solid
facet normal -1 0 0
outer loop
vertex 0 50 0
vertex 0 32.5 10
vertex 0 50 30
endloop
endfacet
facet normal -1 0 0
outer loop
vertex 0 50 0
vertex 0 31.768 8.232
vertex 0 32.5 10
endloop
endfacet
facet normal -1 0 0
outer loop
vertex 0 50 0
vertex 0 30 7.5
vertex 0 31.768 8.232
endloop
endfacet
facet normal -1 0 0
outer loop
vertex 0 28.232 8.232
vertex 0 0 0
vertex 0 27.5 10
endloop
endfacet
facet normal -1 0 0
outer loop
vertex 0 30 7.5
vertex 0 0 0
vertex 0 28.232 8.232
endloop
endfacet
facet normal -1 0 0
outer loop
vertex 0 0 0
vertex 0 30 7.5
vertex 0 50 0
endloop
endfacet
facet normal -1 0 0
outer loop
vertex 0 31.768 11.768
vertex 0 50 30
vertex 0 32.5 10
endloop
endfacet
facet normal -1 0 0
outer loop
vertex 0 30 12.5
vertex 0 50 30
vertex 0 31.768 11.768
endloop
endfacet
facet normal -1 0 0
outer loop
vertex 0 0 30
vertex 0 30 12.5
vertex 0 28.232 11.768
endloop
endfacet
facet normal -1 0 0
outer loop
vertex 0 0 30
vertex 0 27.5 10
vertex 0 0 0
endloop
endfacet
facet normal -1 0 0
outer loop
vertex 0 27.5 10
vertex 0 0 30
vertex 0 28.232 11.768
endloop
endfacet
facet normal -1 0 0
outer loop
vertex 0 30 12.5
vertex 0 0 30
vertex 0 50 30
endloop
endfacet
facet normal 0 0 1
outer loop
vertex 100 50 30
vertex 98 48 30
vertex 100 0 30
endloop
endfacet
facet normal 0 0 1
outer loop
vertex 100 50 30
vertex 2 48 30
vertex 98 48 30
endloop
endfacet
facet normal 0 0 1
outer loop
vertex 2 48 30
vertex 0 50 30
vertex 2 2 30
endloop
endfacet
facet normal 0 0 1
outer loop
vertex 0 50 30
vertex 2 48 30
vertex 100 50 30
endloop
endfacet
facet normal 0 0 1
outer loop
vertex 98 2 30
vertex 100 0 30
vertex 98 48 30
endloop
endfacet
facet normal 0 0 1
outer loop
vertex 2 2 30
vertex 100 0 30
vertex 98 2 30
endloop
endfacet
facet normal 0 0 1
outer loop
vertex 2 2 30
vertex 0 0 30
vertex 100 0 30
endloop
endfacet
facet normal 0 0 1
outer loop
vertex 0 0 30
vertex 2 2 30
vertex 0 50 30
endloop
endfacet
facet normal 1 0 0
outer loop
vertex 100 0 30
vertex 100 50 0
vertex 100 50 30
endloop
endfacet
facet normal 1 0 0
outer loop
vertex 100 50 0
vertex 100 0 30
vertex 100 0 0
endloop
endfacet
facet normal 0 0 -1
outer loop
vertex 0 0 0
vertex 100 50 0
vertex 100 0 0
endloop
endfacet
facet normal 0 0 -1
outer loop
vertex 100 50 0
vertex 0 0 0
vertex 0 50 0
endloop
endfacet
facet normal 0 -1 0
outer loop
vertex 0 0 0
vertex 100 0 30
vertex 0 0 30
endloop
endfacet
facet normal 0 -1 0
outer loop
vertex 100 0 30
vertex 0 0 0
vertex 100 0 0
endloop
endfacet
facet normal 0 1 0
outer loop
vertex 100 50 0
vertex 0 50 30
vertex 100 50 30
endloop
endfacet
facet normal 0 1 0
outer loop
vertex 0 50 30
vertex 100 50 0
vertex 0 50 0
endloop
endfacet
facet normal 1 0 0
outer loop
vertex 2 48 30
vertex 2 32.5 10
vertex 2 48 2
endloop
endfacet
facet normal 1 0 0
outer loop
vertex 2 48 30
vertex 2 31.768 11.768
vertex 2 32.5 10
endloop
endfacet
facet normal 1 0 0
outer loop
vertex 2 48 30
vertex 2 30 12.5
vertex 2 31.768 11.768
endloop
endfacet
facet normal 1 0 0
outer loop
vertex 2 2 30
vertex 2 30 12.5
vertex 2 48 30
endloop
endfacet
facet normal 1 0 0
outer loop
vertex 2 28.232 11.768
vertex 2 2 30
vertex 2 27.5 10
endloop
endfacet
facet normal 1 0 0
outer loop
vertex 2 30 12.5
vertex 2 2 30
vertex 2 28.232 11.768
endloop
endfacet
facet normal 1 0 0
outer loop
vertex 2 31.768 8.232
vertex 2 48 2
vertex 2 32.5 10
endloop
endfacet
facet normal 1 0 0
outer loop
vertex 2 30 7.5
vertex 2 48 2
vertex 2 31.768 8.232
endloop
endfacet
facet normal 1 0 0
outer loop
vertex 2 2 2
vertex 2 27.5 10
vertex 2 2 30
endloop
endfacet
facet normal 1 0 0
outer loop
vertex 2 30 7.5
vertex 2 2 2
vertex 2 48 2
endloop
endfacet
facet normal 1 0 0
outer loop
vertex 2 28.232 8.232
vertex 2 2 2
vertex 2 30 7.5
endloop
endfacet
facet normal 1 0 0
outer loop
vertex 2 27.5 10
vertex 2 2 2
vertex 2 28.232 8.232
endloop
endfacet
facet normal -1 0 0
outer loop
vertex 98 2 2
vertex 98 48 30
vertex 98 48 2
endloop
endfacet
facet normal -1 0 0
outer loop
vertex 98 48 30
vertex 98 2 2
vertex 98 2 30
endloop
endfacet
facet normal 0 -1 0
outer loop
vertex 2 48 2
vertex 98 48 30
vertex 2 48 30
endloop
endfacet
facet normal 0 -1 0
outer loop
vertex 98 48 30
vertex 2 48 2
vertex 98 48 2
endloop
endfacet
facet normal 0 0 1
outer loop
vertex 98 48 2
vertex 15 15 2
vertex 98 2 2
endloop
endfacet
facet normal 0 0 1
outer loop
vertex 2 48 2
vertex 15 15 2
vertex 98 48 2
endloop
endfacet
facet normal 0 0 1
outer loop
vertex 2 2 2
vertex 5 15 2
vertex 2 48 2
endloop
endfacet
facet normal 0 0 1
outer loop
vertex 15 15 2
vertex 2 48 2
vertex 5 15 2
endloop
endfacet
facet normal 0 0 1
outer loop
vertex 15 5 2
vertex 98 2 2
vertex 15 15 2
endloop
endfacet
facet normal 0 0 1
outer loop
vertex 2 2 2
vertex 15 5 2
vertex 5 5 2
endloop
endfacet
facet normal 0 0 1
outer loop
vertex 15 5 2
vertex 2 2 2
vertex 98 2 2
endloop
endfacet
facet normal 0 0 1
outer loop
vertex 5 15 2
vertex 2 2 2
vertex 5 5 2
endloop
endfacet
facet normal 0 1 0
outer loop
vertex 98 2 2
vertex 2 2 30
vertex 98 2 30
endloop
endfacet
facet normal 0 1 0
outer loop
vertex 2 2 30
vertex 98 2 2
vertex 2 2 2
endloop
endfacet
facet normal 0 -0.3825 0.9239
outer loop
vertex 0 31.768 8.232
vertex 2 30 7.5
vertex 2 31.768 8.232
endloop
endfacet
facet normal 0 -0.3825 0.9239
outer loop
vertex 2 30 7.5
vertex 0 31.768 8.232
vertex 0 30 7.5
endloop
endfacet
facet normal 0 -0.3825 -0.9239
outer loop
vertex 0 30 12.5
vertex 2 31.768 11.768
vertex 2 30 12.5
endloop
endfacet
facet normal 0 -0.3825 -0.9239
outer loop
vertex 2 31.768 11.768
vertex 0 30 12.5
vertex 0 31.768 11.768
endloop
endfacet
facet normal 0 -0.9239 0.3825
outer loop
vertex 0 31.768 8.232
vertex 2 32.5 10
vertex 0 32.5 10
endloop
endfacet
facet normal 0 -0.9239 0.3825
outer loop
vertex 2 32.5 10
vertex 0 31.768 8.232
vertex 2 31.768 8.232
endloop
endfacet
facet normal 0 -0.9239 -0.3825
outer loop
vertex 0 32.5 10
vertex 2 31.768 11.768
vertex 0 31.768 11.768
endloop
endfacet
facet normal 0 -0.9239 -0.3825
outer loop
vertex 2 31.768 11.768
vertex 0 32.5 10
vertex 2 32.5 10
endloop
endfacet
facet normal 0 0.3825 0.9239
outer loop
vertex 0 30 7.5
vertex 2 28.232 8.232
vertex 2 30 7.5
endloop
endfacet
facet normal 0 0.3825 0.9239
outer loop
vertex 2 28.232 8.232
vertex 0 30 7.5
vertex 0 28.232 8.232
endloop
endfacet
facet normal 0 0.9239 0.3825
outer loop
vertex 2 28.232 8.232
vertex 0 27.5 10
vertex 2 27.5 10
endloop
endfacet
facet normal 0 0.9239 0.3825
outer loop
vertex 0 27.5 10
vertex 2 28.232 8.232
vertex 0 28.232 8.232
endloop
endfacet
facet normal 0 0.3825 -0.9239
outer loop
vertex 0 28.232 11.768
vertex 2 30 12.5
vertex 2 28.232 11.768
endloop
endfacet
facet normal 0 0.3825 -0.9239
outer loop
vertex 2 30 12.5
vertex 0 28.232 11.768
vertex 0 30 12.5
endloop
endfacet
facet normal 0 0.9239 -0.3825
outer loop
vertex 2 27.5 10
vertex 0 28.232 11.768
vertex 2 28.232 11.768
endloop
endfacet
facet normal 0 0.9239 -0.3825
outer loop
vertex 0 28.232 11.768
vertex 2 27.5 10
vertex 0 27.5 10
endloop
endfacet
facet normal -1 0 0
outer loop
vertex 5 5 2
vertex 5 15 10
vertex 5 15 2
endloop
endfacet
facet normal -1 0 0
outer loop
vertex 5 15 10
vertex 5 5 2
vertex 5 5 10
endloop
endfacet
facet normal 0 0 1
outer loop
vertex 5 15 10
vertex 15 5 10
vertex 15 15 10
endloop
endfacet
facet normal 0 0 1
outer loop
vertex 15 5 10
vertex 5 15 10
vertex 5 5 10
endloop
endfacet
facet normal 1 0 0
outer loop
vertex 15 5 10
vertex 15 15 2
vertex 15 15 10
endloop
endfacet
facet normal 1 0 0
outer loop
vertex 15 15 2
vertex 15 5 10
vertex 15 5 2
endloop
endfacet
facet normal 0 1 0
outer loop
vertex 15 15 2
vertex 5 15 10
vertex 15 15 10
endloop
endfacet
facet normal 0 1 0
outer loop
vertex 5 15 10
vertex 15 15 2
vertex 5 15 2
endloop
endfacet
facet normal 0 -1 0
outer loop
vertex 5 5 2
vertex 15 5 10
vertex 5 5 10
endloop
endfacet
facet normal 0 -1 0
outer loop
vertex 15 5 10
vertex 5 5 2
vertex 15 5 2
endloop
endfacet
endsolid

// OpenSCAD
difference() {
	cube([100, 50, 30]);
	translate([2, 2, 2])
		cube([100-4, 50-4, 30]);
	translate([-1, 30, 10])
		rotate([0, 90, 0])
		cylinder(h=10, d=5);
}

translate([5, 5, 0])
	cube(10);
